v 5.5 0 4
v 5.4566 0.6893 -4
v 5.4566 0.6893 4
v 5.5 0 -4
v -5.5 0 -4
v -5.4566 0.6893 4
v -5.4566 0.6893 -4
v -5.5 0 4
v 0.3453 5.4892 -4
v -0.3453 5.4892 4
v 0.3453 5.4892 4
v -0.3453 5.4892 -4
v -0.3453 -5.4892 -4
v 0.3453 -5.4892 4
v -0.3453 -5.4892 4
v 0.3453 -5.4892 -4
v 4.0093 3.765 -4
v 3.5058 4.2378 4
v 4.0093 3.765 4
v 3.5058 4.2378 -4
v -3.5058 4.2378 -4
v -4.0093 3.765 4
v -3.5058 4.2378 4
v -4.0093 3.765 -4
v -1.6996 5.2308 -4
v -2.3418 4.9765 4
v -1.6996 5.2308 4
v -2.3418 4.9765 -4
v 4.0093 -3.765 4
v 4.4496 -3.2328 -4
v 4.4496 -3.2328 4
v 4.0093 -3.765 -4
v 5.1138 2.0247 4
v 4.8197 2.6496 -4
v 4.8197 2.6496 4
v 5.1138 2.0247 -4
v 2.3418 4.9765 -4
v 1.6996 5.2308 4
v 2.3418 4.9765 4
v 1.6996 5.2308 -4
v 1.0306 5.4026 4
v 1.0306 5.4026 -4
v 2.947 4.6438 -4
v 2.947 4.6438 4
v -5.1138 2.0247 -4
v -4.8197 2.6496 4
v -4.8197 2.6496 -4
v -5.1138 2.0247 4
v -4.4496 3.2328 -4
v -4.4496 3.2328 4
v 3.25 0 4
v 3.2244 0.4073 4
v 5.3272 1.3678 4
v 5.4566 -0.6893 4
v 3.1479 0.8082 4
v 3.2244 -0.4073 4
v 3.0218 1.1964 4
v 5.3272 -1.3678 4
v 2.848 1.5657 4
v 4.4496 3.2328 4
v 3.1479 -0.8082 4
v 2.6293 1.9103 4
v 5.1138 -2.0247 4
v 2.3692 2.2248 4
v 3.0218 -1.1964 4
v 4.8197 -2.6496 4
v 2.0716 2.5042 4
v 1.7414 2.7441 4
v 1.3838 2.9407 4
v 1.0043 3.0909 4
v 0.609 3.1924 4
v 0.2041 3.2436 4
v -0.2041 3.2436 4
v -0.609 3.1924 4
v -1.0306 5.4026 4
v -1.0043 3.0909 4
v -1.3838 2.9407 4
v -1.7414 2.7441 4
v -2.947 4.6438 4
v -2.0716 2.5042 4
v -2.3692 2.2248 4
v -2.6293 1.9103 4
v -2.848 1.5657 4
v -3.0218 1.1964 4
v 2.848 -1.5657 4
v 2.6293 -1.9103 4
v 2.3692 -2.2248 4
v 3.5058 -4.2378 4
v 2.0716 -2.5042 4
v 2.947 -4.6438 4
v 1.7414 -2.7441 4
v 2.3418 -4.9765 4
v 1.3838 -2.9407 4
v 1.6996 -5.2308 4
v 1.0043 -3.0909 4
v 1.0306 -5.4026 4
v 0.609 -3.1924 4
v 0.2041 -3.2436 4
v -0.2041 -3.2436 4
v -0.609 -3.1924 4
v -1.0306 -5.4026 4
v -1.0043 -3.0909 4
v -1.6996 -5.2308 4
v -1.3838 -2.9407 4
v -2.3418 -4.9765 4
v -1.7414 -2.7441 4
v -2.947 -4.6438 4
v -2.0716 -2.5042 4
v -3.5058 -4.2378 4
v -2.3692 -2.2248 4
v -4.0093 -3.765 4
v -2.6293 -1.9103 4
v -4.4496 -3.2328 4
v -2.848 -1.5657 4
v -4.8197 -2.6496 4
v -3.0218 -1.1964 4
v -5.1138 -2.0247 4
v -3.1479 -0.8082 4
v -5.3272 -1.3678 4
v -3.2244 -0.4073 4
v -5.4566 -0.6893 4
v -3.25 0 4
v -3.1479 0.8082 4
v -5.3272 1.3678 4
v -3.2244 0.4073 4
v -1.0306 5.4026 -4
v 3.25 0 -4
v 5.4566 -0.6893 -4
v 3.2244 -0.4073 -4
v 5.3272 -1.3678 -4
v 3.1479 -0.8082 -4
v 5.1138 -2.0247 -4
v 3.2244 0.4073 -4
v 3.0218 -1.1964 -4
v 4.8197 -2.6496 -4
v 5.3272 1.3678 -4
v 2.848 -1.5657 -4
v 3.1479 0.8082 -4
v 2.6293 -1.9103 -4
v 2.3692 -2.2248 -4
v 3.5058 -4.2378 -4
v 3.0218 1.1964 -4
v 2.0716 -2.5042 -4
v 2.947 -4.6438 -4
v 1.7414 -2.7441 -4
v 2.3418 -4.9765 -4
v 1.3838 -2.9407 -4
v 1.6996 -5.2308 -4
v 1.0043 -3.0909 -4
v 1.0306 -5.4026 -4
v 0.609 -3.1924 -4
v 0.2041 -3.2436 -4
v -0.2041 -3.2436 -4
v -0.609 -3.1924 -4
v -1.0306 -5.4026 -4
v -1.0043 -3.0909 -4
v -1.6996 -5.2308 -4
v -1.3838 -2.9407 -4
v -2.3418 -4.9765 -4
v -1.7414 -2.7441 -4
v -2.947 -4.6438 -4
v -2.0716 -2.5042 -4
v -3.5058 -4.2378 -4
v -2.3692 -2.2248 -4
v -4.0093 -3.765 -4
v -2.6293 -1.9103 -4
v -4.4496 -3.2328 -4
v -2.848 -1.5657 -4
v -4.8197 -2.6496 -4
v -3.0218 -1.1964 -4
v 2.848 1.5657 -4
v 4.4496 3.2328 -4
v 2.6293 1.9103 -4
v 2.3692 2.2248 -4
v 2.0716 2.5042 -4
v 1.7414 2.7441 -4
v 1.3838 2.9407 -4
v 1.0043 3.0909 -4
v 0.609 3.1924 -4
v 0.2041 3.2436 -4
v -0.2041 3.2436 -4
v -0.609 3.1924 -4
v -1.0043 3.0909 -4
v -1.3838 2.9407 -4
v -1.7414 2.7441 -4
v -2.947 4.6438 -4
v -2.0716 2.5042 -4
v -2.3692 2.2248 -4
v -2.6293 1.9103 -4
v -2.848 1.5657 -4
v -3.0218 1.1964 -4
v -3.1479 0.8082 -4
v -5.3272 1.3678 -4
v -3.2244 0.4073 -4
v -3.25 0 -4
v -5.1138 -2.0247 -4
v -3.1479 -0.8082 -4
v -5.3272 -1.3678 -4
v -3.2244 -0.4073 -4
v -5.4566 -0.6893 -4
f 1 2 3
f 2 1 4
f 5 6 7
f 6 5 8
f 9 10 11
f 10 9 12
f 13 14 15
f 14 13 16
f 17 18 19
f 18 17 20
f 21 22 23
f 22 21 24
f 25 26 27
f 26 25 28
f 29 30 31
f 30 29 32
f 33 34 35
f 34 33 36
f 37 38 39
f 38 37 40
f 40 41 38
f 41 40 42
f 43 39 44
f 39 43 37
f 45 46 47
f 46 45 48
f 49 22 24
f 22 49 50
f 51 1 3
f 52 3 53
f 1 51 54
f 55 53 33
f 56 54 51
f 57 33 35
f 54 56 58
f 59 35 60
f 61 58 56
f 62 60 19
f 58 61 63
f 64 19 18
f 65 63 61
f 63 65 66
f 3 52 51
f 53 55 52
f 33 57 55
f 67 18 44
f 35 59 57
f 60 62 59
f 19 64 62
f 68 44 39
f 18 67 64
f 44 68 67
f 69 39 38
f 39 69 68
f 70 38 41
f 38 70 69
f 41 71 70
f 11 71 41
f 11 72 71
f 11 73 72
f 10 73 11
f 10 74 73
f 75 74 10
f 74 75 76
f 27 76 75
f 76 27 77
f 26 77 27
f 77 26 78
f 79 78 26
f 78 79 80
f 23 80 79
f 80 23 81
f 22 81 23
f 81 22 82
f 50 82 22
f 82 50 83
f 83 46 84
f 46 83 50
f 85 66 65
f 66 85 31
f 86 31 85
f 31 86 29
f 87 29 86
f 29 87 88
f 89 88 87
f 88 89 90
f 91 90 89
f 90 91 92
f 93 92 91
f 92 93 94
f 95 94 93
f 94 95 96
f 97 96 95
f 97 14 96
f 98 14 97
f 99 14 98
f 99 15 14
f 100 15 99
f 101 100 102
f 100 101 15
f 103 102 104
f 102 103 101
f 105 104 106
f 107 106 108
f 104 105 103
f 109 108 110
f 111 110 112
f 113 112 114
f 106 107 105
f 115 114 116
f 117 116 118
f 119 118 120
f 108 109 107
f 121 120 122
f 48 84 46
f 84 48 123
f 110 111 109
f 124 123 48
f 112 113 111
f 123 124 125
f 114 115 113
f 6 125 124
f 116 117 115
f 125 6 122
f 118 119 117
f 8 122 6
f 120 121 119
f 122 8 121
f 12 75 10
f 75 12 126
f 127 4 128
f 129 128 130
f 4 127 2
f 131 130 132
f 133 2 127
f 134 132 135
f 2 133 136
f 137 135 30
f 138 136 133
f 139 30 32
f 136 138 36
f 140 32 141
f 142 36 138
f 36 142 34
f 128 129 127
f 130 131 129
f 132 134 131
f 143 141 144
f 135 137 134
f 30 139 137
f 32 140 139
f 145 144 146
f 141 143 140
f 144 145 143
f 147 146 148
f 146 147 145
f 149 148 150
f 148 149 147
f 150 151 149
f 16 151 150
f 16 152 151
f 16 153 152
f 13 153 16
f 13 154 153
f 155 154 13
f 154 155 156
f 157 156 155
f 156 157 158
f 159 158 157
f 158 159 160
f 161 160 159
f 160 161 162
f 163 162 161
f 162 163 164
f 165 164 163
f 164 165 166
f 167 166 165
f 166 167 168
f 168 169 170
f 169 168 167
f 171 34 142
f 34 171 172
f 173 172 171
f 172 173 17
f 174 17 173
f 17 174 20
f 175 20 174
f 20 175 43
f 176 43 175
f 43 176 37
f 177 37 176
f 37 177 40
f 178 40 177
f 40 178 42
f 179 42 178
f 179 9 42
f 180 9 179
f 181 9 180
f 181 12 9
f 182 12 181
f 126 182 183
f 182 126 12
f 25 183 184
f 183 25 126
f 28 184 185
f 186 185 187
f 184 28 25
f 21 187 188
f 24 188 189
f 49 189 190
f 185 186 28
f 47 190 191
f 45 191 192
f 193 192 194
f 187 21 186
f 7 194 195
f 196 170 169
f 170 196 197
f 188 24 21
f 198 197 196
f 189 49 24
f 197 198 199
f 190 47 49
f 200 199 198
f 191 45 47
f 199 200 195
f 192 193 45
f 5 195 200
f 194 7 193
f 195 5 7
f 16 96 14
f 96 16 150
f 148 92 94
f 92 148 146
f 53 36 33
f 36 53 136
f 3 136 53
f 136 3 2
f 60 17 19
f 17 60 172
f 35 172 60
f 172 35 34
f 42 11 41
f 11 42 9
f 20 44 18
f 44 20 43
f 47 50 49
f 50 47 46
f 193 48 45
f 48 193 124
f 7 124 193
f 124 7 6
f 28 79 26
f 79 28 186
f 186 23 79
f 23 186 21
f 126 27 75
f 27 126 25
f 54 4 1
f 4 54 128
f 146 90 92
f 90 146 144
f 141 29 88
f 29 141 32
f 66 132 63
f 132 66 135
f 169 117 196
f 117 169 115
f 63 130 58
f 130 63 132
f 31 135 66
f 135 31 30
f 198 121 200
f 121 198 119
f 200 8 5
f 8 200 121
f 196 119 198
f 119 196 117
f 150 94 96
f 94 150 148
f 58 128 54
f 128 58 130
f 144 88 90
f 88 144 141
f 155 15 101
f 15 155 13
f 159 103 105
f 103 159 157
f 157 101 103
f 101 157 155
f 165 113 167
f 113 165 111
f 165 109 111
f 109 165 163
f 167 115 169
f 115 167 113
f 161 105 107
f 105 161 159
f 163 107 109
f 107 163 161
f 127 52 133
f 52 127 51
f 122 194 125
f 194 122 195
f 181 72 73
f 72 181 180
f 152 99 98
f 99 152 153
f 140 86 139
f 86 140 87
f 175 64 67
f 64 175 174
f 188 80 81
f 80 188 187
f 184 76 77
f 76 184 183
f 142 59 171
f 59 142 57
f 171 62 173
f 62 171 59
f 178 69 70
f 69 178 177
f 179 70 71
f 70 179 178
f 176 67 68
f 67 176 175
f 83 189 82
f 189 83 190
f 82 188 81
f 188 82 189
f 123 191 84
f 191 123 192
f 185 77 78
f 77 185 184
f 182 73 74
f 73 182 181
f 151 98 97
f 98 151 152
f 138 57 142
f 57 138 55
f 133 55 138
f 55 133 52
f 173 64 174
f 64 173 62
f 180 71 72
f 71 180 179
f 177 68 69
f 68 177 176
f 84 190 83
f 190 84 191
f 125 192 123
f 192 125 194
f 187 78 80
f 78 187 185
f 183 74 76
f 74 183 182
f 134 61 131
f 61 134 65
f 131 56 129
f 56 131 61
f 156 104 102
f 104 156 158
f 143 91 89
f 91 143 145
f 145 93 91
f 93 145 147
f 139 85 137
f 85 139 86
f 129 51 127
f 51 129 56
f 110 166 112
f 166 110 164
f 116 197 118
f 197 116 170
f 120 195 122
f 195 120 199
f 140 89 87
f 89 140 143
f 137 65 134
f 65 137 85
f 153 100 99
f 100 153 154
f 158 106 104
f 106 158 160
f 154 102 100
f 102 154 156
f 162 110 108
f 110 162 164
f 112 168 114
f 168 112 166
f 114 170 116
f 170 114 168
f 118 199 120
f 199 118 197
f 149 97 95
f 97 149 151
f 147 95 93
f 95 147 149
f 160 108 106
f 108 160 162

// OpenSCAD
$fn = 50;


difference() {
	union() {
		translate(v = [0, 0, -4.0000000000]) {
			cylinder(h = 8, r = 5.5000000000);
		}
	}
	union() {
		translate(v = [0, 0, -100.0000000000]) {
			cylinder(h = 200, r = 3.2500000000);
		}
	}
}
